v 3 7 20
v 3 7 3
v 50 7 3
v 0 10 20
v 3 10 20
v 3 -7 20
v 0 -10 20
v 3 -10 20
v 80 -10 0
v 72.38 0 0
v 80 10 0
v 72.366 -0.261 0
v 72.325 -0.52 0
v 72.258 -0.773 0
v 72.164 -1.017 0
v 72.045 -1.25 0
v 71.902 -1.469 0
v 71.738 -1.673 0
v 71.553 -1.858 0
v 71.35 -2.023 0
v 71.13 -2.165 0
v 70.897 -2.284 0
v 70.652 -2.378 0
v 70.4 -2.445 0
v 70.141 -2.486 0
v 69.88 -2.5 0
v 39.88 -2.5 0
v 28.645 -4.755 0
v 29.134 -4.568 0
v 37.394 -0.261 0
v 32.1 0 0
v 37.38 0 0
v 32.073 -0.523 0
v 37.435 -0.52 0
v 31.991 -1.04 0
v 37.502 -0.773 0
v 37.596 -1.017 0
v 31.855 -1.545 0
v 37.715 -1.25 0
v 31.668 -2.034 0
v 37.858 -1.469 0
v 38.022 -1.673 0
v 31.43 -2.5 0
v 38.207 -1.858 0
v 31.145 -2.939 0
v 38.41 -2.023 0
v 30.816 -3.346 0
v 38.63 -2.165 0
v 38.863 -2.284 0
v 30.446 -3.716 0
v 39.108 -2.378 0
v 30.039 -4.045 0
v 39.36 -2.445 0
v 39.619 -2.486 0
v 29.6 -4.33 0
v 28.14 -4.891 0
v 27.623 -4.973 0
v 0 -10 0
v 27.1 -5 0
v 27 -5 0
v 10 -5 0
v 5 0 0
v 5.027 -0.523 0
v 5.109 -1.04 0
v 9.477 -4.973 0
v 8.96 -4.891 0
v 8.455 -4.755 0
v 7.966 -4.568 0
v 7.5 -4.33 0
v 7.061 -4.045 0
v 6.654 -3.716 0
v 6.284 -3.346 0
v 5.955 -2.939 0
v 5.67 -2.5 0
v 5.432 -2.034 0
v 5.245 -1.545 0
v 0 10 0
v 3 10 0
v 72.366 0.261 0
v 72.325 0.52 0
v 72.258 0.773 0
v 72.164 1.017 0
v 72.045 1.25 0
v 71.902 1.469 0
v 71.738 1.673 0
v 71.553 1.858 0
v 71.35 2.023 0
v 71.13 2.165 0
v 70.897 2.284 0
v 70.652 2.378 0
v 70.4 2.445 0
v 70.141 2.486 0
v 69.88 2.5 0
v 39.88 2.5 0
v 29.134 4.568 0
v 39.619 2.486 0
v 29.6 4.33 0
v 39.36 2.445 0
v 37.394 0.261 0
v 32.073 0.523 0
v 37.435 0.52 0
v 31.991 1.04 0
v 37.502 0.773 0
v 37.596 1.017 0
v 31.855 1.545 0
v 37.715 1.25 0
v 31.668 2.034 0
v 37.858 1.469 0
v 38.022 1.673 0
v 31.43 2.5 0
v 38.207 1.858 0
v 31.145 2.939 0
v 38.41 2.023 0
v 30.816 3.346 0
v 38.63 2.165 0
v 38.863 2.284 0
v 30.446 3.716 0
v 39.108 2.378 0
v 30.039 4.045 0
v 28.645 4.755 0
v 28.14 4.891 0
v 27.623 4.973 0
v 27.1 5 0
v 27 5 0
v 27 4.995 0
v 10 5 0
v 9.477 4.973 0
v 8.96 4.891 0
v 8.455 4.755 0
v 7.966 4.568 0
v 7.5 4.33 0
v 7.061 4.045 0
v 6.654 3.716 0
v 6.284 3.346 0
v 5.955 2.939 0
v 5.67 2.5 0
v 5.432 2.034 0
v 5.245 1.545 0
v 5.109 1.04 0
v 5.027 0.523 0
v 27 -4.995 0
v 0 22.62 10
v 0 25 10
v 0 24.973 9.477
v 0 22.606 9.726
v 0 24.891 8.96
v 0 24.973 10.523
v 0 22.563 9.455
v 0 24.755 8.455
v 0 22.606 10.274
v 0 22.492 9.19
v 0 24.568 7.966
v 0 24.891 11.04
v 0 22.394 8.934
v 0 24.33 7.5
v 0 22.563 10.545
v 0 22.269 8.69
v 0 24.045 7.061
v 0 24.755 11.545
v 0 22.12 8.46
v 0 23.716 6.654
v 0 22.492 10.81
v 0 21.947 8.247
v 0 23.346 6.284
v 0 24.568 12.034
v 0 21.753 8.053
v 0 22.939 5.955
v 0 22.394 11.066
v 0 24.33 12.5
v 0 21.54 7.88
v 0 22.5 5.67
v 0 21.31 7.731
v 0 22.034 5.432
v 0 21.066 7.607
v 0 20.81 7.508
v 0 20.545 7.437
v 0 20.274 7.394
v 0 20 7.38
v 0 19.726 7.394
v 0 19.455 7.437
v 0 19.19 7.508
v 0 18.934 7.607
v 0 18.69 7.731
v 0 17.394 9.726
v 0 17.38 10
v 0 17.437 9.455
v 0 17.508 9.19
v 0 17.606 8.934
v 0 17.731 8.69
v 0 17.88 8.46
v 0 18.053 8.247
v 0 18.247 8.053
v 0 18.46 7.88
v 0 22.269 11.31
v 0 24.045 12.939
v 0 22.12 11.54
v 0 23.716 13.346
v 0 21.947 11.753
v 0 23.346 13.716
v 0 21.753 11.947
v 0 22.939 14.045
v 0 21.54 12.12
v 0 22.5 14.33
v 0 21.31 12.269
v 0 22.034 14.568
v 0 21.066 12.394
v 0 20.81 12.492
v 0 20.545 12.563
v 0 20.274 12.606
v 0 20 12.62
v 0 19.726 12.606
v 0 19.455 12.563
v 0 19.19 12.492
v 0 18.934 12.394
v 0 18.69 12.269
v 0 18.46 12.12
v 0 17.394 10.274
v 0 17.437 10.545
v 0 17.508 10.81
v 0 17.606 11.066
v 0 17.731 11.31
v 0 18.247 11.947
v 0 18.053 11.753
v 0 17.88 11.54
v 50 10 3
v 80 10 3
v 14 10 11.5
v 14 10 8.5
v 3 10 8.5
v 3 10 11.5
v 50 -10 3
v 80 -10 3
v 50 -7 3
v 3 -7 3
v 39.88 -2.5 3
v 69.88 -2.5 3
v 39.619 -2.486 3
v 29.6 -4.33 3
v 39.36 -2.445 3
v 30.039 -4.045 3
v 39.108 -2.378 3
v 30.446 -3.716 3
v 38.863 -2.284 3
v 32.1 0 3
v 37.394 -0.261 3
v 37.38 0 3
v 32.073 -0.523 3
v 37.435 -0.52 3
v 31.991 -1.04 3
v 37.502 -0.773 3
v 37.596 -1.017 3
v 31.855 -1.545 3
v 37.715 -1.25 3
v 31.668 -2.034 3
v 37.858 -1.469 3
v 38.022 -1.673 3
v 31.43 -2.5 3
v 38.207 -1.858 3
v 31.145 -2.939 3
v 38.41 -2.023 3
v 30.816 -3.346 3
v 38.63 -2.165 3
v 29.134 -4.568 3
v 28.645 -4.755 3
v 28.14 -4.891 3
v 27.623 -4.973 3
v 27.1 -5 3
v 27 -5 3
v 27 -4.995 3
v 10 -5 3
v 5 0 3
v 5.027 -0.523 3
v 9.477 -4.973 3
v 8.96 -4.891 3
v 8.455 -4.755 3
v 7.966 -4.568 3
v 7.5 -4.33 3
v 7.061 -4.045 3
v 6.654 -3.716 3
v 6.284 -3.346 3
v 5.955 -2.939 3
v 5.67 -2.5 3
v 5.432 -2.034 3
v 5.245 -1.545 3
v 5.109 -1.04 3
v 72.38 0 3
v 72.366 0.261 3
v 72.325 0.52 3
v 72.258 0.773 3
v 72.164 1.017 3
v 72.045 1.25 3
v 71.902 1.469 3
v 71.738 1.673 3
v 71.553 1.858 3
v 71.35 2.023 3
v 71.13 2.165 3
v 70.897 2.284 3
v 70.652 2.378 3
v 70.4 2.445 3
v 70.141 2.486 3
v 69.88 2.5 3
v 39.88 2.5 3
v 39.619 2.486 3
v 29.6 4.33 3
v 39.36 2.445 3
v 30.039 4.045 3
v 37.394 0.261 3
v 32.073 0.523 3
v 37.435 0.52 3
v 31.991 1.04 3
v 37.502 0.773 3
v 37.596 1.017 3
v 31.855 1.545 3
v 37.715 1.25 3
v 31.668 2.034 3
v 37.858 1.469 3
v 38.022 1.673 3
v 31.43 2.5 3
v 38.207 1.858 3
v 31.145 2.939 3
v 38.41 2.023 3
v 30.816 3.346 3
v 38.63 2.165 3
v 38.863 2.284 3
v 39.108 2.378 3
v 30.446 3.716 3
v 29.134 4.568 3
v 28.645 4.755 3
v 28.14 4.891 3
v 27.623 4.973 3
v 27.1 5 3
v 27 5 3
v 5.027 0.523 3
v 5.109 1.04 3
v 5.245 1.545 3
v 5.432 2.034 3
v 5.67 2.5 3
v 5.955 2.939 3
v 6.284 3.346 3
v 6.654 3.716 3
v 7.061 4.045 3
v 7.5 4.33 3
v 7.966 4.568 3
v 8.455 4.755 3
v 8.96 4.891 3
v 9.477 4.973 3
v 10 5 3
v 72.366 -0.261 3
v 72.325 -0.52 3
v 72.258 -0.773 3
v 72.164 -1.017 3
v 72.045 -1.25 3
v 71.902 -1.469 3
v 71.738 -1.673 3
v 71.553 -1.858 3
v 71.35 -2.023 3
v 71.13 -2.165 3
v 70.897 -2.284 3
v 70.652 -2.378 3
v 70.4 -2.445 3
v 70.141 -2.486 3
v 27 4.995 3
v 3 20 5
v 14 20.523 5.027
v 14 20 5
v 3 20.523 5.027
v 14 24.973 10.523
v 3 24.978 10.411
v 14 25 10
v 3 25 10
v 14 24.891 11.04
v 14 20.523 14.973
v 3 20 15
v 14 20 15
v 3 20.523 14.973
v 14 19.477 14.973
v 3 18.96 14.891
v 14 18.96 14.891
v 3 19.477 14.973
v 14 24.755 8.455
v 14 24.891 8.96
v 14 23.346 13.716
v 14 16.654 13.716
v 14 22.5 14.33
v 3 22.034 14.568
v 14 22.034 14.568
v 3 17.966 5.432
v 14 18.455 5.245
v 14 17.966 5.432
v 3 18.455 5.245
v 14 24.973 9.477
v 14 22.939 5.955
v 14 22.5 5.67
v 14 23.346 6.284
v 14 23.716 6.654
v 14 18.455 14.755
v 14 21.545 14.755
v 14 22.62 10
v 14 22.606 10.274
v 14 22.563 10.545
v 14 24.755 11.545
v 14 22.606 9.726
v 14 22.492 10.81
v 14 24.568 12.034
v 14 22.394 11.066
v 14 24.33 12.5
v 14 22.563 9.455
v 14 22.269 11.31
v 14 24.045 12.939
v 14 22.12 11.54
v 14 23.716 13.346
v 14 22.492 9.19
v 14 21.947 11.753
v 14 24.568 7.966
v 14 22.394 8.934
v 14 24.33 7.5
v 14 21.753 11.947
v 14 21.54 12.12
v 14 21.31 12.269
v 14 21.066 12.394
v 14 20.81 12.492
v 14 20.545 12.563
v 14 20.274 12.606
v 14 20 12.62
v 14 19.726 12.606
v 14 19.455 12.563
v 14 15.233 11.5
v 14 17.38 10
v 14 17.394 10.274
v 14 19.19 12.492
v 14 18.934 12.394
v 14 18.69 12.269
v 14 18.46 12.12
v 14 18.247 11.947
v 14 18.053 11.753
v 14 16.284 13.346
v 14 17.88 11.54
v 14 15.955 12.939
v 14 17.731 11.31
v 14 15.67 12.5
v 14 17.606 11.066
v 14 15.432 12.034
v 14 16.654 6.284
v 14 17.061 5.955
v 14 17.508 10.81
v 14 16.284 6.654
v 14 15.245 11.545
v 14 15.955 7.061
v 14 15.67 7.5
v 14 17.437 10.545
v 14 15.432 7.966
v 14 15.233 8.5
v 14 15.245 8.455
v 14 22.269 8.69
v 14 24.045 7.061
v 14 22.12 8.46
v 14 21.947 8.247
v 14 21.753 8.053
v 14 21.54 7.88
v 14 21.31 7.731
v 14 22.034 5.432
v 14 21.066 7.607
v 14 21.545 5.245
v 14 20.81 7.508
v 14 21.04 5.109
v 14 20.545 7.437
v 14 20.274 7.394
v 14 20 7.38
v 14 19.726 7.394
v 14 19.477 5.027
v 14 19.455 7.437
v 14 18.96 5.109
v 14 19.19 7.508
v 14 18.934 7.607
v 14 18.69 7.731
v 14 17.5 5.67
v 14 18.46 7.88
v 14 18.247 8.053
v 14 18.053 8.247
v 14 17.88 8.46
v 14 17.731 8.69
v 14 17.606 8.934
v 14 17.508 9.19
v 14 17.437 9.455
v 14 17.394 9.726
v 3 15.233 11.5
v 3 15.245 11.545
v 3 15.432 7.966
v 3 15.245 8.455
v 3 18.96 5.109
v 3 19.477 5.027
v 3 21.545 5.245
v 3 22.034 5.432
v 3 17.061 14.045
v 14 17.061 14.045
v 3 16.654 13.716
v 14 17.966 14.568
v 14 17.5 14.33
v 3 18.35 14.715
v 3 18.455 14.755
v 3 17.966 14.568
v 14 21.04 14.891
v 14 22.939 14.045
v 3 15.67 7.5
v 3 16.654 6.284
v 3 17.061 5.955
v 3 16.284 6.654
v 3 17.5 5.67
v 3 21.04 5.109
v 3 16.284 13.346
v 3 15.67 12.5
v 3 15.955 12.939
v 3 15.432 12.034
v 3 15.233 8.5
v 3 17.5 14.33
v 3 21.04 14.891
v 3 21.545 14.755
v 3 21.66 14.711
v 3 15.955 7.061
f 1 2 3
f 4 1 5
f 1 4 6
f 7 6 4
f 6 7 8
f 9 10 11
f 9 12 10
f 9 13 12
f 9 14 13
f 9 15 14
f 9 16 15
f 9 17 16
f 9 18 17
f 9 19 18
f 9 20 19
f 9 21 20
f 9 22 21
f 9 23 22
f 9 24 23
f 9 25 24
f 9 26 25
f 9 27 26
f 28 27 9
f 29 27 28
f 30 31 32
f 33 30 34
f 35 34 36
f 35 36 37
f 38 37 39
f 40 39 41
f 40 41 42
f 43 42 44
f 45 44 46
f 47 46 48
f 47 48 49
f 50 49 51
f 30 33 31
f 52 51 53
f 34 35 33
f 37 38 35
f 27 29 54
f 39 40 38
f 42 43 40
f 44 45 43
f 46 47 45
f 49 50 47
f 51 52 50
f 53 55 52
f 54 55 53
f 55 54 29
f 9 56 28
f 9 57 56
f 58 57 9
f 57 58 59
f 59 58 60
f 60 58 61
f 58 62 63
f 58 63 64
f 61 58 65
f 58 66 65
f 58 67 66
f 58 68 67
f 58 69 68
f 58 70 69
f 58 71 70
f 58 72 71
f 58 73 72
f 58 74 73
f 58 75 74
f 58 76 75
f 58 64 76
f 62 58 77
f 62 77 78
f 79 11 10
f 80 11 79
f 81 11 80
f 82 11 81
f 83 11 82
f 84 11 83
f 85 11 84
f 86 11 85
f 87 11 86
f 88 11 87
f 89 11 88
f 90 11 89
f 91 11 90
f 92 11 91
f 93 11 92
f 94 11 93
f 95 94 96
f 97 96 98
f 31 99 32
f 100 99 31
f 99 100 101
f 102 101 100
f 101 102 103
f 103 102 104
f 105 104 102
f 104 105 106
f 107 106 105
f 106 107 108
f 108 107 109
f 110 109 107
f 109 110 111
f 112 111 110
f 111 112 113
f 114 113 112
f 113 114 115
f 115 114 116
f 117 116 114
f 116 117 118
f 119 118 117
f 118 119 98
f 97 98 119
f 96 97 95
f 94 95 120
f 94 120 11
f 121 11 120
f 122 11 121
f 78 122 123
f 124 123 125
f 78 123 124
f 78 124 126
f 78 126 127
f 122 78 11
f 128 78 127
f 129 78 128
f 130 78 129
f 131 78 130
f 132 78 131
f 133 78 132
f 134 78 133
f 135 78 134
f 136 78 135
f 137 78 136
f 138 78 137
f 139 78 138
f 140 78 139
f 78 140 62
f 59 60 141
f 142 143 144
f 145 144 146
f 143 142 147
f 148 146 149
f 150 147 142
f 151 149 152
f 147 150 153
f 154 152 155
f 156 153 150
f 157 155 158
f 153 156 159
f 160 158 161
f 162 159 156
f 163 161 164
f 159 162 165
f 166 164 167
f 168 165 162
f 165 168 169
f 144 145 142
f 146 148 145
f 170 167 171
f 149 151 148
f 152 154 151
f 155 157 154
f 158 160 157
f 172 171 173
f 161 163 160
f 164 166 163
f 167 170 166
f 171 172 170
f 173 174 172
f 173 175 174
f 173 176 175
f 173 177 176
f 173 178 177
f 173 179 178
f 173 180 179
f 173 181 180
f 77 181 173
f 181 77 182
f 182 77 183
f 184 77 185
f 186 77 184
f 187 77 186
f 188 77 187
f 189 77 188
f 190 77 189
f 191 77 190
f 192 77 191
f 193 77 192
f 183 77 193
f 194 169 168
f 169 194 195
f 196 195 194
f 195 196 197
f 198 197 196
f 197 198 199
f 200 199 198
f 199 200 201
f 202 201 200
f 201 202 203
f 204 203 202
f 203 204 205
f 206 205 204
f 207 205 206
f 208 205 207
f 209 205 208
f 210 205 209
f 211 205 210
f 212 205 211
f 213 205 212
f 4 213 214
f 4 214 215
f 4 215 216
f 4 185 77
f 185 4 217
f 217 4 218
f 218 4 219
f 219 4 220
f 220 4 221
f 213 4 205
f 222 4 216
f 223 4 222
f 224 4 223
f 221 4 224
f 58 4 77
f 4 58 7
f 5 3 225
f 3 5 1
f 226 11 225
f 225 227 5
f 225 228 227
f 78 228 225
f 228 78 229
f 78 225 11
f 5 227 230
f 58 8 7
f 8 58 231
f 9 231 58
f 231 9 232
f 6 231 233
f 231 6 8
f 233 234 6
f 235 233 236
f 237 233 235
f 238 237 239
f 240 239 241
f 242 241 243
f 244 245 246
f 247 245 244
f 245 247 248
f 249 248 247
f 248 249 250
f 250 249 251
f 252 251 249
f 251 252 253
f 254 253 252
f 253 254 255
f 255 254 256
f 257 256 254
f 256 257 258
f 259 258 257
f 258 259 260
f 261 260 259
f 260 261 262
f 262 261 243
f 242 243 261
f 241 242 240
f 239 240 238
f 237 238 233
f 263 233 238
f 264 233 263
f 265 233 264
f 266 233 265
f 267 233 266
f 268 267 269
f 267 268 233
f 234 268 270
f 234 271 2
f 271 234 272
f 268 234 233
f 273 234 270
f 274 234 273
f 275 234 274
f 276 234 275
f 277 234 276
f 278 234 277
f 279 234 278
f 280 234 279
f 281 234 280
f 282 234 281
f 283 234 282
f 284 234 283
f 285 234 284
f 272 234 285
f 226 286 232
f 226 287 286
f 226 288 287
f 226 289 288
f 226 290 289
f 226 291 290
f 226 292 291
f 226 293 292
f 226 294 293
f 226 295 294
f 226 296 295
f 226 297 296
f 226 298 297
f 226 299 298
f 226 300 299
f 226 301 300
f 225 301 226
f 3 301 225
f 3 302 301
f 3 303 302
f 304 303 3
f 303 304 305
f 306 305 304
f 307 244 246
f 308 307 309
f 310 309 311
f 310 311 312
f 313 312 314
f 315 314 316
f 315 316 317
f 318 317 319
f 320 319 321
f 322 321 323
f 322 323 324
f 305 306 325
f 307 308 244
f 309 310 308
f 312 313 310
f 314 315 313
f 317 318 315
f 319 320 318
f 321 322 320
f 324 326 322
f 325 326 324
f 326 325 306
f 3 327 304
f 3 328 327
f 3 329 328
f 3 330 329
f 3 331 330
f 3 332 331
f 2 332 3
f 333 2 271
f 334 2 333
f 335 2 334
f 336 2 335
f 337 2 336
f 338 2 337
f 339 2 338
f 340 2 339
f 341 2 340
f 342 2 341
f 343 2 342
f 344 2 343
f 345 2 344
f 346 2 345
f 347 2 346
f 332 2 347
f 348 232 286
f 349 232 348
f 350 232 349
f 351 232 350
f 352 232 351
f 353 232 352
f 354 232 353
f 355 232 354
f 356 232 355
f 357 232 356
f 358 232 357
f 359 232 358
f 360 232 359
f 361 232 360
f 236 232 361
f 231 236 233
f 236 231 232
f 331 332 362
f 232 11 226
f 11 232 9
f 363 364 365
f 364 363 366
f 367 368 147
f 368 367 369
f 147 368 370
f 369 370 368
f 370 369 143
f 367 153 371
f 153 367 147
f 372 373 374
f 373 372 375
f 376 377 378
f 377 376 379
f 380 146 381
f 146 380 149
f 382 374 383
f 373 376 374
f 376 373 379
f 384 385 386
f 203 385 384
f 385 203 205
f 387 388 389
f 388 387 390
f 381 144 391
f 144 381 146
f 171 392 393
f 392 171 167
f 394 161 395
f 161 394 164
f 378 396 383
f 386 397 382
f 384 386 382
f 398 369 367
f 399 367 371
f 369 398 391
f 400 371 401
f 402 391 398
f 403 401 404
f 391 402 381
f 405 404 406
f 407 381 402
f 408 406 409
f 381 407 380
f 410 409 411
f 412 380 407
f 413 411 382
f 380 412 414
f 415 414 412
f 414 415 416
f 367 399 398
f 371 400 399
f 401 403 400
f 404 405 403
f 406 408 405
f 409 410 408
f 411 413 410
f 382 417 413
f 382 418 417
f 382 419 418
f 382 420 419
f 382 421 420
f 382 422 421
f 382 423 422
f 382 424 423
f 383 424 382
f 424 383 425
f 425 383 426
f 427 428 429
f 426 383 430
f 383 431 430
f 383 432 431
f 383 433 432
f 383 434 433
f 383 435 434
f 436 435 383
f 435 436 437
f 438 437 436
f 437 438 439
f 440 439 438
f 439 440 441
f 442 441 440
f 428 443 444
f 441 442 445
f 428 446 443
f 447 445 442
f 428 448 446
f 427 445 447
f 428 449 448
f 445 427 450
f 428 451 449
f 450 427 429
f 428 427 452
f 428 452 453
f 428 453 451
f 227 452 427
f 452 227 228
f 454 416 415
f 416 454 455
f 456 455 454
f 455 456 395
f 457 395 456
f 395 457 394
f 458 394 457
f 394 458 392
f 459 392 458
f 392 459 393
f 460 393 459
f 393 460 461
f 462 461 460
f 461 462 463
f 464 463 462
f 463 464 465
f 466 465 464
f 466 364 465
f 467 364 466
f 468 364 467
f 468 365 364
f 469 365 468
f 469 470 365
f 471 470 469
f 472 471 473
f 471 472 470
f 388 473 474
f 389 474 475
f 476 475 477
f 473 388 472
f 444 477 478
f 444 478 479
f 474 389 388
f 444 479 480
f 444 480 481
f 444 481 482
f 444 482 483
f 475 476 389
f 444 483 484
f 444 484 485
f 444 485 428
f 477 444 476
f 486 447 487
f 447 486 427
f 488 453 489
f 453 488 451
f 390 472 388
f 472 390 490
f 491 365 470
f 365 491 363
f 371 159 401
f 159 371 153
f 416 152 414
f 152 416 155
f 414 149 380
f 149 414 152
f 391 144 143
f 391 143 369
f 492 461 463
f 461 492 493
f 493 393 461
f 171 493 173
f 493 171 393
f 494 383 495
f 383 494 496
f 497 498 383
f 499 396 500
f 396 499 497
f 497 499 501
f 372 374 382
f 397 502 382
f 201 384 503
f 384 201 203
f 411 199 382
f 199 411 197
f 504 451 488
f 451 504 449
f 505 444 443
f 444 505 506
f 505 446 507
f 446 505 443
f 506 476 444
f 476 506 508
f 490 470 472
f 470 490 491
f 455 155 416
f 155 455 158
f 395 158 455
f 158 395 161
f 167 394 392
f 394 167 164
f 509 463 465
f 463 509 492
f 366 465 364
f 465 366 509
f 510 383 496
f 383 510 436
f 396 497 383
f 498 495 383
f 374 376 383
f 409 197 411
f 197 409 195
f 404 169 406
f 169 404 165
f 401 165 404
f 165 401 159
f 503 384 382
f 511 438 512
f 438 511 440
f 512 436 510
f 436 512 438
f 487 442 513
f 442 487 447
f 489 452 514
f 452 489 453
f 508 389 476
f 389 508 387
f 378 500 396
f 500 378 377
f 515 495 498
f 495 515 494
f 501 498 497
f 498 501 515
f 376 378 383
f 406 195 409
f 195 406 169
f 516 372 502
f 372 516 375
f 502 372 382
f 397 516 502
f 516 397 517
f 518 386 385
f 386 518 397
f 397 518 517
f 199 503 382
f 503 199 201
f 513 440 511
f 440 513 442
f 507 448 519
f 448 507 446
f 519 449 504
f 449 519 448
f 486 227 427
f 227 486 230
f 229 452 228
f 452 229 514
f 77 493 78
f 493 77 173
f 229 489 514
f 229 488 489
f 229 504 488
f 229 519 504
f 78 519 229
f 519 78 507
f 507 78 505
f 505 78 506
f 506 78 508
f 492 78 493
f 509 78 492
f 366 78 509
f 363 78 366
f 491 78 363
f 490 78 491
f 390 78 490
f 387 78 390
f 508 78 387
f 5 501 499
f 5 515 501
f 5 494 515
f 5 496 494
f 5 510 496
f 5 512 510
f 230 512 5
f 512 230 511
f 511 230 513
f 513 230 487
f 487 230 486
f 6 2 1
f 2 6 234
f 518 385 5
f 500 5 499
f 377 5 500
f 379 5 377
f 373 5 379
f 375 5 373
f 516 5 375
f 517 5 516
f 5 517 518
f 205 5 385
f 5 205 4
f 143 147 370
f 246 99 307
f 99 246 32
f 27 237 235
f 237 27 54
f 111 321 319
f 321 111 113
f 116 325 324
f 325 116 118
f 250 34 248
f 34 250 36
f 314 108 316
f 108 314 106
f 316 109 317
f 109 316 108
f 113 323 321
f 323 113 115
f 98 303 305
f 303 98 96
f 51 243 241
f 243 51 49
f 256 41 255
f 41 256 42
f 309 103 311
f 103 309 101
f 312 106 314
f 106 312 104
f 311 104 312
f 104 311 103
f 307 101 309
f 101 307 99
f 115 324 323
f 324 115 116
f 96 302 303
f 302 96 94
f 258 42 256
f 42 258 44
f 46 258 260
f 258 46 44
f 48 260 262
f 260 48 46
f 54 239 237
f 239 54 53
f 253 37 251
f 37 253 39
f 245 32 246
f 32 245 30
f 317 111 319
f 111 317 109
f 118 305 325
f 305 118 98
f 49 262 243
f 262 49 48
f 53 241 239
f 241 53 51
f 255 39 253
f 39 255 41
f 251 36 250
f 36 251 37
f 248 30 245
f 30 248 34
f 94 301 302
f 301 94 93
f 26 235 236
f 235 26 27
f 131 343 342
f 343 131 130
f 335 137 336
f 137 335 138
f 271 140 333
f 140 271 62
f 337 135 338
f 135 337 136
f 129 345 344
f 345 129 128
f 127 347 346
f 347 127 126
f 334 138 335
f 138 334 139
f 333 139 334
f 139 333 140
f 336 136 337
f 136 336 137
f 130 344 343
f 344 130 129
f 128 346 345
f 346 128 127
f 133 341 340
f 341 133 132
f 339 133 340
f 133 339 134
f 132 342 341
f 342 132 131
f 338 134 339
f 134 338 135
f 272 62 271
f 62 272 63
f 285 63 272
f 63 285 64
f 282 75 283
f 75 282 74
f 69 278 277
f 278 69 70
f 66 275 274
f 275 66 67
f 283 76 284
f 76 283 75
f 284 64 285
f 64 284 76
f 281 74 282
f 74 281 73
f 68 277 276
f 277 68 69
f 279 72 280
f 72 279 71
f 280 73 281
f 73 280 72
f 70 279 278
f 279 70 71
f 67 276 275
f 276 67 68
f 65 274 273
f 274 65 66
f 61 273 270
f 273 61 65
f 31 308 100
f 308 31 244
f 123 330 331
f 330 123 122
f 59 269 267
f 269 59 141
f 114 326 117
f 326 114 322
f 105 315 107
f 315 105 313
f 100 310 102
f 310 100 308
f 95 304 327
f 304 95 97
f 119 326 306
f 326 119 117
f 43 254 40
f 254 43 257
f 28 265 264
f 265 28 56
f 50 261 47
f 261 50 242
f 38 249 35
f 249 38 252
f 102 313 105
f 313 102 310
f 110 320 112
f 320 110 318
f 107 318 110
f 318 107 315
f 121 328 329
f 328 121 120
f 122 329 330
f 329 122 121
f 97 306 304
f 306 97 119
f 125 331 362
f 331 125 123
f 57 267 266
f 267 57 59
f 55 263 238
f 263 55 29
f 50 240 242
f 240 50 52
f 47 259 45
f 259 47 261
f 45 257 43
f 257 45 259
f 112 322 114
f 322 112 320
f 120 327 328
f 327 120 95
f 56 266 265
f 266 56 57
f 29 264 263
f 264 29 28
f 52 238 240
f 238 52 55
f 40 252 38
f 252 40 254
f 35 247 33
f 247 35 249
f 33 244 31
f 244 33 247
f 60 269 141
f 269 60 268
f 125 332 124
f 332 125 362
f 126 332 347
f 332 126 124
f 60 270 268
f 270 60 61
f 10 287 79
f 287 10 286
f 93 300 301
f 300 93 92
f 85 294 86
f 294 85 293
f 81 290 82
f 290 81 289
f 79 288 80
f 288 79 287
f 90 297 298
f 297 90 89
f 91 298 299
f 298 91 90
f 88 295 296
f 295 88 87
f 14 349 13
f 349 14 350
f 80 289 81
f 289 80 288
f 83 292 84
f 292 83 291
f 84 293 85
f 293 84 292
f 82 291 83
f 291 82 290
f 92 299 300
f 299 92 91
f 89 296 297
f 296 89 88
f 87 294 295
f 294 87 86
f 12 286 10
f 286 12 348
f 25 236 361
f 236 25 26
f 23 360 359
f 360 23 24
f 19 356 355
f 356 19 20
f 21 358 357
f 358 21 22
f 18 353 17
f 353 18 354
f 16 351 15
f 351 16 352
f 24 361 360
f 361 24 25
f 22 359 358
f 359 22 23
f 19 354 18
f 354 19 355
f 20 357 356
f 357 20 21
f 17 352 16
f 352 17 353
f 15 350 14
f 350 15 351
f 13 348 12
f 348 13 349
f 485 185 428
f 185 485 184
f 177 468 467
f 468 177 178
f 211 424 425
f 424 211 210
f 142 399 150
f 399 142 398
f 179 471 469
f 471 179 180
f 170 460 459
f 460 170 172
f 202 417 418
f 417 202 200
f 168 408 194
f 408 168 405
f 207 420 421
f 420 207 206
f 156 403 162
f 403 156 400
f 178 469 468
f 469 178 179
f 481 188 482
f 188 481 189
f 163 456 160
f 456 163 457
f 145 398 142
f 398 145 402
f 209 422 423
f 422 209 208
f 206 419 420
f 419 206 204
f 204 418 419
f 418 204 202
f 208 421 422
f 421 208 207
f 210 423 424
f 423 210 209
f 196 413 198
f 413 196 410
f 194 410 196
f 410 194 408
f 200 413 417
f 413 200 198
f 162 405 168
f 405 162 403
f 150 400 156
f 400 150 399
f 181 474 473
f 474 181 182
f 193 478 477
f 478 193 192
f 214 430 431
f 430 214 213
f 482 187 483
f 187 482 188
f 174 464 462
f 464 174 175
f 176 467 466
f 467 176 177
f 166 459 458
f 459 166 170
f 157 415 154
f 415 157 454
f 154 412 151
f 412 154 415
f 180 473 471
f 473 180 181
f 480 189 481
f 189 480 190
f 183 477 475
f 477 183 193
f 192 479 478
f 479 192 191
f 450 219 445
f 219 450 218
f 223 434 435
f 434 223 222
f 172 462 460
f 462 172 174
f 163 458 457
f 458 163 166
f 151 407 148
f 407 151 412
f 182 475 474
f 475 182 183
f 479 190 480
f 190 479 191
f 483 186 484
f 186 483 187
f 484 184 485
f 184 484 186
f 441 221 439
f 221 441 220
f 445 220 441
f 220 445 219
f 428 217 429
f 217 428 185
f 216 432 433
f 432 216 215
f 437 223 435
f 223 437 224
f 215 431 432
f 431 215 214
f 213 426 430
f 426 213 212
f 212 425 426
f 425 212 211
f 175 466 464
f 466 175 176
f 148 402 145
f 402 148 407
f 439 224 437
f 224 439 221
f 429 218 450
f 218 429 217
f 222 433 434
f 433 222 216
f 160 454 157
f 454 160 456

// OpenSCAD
$fn=60;

module mount_surface(){
    difference(){
        union(){
            angle_length = 50;
            angle_height = 20;
            thickness = 3;
            //Flanges on the sides
            hull(){
                translate([0, 7, 0]){
                    cube([angle_length, thickness, thickness]);
                    cube([thickness, thickness, angle_height]);
                }
            }
            hull(){
                translate([0,-10, 0]){
                    cube([angle_length, thickness, thickness]);
                    cube([thickness, thickness, angle_height]);
                }
            }
            
            //Mount panel
            translate([0,-10,0]){
                cube([80,20,thickness]);
            }
            
            //Magnet
            translate([0,20,10]){
                rotate([0, 90, 0]){
                    difference(){
                        cylinder(r=5, h=14);

                    }
                }
            }
            

            
            //Rectangle connector
            translate([0,10,8.5]){
                cube([14,7,3]);
            }
            
            //Flat end connector
            hull(){
                translate([0,20,10]){
                    rotate([0, 90, 0]){
                        cylinder(r=5, h=3);
                    }
                }
                translate([0,-10, 0]){
                    cube([3, 20, angle_height]);
                }
            }
        }
        
        
        // Cutouts for mounting
        union(){
            translate([0,0,-1]){
                translate([10, 0, 0]){
                    cylinder(h=8, r=5);
                }
                
                translate([25.1+2, 0, 0]){
                    cylinder(h=8, r=5);
                }
                   
                translate([10,-5, 0]){
                    cube([17,10,8]);
                }

                translate([25.1+4+10.78, 0, 0]){
                    cylinder(h=8, r=2.5);
                    translate([0,-2.5, 0]){
                        cube([30,5,8]);
                    }
                }
                
                translate([25.1+4+10.78 +30, 0, 0]){
                    cylinder(h=8, r=2.5);
                }
            }

            //Magnet hole
            translate([0,20,10]){
                rotate([0, 90, 0]){
                    translate([0,0,-0.5]){
                        cylinder(r=2.62, h=15);
                    }
                }
            }               
         }
      }
  }




mount_surface();
